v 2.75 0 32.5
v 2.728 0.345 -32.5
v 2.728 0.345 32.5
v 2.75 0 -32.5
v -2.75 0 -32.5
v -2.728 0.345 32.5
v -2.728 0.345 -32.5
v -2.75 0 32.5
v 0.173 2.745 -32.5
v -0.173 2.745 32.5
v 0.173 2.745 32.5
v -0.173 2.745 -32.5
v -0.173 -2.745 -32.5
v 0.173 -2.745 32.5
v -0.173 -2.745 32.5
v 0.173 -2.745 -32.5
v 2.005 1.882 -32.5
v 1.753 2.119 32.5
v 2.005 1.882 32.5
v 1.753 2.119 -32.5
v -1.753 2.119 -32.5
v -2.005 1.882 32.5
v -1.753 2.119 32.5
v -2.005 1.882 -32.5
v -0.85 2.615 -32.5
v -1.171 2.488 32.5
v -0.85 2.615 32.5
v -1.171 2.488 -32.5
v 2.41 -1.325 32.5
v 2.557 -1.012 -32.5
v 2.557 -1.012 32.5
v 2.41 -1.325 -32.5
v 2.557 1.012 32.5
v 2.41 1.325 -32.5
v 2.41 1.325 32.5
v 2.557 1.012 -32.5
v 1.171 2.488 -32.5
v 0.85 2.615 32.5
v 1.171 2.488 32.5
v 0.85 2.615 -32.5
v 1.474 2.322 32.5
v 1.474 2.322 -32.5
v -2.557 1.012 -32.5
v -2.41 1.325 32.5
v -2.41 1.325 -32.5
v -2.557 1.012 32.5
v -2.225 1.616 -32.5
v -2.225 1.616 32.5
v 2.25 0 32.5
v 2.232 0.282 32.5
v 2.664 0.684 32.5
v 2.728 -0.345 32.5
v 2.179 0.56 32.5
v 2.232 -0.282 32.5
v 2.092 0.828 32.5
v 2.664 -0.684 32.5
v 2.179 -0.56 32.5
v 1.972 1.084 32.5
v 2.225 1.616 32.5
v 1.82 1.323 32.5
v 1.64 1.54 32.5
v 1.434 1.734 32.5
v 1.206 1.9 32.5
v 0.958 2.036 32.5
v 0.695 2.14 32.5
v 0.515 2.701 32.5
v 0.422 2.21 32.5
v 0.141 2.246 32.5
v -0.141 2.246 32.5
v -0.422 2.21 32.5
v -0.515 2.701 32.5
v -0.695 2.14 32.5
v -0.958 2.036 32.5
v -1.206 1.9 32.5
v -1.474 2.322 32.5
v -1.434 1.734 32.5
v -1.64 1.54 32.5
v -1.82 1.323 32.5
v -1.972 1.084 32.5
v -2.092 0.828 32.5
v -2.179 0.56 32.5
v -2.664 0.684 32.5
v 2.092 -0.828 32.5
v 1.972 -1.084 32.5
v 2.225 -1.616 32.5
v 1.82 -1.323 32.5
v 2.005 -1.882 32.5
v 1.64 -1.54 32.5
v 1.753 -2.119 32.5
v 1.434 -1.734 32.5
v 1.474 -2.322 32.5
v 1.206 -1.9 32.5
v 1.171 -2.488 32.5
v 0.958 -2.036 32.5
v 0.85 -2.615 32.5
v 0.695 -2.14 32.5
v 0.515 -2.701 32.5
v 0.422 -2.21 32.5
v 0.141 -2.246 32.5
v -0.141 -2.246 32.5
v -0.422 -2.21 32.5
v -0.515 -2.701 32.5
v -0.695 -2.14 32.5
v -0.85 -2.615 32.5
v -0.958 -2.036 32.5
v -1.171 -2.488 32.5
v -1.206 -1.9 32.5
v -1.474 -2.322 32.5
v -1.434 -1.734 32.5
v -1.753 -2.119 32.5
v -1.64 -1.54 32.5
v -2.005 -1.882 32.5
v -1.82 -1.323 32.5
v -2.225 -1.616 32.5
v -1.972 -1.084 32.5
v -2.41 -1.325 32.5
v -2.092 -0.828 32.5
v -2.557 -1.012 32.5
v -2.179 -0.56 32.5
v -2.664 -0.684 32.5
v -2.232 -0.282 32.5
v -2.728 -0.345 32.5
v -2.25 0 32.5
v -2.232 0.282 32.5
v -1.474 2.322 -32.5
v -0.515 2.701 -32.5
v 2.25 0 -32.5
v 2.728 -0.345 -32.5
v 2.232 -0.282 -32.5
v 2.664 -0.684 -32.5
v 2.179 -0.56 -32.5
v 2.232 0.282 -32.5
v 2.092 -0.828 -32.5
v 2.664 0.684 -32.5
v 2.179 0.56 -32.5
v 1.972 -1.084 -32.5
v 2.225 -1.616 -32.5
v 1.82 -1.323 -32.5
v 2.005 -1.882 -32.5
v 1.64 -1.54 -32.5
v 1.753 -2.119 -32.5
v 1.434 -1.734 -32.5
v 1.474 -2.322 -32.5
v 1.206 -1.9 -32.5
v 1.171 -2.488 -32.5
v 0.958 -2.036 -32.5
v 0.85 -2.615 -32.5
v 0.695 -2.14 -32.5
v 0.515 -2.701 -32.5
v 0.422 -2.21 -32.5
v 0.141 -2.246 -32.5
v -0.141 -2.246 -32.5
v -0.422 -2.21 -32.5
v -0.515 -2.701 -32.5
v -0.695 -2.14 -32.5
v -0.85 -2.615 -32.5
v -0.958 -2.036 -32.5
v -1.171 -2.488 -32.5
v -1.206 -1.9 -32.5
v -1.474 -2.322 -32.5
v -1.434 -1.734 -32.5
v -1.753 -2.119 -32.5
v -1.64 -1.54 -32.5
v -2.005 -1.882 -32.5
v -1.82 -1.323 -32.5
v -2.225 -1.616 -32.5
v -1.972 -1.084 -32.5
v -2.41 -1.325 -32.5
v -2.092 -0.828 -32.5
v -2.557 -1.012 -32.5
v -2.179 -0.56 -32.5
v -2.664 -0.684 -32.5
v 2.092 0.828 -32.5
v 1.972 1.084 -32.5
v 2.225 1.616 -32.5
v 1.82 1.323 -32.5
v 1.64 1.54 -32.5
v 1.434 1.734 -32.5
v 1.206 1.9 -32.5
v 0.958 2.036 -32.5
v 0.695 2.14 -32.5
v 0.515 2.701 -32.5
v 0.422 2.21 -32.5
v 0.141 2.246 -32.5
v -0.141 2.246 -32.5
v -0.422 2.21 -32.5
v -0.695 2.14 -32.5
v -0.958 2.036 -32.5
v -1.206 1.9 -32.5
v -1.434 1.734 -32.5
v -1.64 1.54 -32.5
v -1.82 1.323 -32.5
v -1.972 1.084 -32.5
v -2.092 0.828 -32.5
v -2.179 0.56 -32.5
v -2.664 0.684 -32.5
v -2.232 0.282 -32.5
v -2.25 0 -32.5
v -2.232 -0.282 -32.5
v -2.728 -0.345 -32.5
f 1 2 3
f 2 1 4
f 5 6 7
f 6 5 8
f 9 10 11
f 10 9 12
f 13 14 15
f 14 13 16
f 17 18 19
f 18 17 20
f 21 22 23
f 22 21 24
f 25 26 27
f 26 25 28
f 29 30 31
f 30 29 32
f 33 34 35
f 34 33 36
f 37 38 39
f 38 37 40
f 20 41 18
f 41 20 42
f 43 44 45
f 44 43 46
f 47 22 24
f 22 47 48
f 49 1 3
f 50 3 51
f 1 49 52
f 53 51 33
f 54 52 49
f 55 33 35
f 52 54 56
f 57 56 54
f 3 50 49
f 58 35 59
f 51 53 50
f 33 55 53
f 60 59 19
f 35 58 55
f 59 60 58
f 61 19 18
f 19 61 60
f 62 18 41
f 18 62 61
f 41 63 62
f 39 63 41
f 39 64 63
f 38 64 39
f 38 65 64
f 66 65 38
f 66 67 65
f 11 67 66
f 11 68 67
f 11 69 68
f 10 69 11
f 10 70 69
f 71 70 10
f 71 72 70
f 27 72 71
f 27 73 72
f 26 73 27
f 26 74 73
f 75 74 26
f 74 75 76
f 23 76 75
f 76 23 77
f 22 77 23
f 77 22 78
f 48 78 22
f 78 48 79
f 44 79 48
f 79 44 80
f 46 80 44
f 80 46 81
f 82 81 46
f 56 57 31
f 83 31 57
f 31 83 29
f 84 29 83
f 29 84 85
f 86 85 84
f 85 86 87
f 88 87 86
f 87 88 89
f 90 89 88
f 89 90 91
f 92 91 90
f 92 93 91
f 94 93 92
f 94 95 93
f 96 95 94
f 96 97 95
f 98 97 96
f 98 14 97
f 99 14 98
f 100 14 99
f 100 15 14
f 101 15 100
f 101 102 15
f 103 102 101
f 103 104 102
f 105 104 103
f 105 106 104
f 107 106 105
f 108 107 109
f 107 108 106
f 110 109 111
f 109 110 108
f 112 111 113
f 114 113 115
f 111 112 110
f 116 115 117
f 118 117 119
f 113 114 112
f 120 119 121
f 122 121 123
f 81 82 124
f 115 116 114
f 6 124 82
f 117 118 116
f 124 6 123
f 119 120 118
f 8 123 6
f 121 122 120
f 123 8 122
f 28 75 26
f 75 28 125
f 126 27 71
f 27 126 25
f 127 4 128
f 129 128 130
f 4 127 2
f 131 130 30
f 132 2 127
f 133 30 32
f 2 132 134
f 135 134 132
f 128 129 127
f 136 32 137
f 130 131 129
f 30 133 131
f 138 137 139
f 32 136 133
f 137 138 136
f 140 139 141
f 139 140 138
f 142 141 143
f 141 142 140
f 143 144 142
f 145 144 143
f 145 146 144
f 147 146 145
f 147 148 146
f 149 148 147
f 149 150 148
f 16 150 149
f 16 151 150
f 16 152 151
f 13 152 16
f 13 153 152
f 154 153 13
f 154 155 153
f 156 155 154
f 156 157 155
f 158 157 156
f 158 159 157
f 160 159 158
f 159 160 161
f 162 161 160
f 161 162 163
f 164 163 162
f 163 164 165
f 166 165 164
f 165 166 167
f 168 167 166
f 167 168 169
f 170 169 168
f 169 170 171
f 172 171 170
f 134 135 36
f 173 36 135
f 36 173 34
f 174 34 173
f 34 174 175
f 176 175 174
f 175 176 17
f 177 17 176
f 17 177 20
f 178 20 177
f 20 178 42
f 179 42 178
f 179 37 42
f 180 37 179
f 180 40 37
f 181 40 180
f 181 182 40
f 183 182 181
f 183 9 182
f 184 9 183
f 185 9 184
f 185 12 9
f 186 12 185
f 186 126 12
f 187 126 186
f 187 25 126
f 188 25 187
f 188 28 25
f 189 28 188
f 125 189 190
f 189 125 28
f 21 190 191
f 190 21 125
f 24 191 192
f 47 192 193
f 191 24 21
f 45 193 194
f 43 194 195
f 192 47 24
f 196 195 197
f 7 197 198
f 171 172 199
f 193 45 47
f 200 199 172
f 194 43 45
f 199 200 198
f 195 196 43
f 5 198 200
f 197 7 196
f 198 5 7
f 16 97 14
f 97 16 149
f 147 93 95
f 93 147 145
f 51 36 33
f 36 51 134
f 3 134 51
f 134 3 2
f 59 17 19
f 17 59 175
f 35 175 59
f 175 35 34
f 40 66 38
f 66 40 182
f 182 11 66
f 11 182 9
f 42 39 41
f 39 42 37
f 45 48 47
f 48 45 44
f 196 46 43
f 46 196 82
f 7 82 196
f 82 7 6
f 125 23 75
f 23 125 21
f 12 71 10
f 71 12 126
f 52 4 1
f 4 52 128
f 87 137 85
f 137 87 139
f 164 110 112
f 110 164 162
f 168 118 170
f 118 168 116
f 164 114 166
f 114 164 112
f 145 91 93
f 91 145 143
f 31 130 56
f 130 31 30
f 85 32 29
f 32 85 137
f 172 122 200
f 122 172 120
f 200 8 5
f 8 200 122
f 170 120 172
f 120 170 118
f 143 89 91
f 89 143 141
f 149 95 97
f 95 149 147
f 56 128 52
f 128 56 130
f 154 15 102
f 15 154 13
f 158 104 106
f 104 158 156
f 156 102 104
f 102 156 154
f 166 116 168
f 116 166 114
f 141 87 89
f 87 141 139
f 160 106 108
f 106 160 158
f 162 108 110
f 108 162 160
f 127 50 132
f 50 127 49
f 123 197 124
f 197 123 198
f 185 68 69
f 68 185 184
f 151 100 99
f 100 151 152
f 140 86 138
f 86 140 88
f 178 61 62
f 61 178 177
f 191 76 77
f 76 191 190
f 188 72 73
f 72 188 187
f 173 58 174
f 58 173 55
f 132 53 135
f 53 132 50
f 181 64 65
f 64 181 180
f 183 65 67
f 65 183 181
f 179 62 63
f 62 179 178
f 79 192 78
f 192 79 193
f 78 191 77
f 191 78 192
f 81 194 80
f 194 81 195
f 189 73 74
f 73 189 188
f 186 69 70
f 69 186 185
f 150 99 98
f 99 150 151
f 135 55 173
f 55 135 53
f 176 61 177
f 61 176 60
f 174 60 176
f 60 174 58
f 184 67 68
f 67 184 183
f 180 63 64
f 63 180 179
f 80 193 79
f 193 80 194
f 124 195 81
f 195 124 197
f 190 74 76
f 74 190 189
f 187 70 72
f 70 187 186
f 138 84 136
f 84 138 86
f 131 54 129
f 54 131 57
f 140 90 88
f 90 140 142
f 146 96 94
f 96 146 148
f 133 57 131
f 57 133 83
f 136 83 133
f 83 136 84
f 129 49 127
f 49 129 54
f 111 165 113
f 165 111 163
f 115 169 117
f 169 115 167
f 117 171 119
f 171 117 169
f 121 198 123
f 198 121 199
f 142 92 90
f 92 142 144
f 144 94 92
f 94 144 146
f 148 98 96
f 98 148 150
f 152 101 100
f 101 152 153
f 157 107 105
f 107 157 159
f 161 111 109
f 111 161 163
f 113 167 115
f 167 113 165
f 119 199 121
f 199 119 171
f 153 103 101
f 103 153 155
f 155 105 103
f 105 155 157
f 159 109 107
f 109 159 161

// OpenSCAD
$fn = 50;


difference() {
	union() {
		translate(v = [0, 0, -32.5000000000]) {
			cylinder(h = 65, r = 2.7500000000);
		}
	}
	union() {
		translate(v = [0, 0, -100.0000000000]) {
			cylinder(h = 200, r = 2.2500000000);
		}
	}
}
